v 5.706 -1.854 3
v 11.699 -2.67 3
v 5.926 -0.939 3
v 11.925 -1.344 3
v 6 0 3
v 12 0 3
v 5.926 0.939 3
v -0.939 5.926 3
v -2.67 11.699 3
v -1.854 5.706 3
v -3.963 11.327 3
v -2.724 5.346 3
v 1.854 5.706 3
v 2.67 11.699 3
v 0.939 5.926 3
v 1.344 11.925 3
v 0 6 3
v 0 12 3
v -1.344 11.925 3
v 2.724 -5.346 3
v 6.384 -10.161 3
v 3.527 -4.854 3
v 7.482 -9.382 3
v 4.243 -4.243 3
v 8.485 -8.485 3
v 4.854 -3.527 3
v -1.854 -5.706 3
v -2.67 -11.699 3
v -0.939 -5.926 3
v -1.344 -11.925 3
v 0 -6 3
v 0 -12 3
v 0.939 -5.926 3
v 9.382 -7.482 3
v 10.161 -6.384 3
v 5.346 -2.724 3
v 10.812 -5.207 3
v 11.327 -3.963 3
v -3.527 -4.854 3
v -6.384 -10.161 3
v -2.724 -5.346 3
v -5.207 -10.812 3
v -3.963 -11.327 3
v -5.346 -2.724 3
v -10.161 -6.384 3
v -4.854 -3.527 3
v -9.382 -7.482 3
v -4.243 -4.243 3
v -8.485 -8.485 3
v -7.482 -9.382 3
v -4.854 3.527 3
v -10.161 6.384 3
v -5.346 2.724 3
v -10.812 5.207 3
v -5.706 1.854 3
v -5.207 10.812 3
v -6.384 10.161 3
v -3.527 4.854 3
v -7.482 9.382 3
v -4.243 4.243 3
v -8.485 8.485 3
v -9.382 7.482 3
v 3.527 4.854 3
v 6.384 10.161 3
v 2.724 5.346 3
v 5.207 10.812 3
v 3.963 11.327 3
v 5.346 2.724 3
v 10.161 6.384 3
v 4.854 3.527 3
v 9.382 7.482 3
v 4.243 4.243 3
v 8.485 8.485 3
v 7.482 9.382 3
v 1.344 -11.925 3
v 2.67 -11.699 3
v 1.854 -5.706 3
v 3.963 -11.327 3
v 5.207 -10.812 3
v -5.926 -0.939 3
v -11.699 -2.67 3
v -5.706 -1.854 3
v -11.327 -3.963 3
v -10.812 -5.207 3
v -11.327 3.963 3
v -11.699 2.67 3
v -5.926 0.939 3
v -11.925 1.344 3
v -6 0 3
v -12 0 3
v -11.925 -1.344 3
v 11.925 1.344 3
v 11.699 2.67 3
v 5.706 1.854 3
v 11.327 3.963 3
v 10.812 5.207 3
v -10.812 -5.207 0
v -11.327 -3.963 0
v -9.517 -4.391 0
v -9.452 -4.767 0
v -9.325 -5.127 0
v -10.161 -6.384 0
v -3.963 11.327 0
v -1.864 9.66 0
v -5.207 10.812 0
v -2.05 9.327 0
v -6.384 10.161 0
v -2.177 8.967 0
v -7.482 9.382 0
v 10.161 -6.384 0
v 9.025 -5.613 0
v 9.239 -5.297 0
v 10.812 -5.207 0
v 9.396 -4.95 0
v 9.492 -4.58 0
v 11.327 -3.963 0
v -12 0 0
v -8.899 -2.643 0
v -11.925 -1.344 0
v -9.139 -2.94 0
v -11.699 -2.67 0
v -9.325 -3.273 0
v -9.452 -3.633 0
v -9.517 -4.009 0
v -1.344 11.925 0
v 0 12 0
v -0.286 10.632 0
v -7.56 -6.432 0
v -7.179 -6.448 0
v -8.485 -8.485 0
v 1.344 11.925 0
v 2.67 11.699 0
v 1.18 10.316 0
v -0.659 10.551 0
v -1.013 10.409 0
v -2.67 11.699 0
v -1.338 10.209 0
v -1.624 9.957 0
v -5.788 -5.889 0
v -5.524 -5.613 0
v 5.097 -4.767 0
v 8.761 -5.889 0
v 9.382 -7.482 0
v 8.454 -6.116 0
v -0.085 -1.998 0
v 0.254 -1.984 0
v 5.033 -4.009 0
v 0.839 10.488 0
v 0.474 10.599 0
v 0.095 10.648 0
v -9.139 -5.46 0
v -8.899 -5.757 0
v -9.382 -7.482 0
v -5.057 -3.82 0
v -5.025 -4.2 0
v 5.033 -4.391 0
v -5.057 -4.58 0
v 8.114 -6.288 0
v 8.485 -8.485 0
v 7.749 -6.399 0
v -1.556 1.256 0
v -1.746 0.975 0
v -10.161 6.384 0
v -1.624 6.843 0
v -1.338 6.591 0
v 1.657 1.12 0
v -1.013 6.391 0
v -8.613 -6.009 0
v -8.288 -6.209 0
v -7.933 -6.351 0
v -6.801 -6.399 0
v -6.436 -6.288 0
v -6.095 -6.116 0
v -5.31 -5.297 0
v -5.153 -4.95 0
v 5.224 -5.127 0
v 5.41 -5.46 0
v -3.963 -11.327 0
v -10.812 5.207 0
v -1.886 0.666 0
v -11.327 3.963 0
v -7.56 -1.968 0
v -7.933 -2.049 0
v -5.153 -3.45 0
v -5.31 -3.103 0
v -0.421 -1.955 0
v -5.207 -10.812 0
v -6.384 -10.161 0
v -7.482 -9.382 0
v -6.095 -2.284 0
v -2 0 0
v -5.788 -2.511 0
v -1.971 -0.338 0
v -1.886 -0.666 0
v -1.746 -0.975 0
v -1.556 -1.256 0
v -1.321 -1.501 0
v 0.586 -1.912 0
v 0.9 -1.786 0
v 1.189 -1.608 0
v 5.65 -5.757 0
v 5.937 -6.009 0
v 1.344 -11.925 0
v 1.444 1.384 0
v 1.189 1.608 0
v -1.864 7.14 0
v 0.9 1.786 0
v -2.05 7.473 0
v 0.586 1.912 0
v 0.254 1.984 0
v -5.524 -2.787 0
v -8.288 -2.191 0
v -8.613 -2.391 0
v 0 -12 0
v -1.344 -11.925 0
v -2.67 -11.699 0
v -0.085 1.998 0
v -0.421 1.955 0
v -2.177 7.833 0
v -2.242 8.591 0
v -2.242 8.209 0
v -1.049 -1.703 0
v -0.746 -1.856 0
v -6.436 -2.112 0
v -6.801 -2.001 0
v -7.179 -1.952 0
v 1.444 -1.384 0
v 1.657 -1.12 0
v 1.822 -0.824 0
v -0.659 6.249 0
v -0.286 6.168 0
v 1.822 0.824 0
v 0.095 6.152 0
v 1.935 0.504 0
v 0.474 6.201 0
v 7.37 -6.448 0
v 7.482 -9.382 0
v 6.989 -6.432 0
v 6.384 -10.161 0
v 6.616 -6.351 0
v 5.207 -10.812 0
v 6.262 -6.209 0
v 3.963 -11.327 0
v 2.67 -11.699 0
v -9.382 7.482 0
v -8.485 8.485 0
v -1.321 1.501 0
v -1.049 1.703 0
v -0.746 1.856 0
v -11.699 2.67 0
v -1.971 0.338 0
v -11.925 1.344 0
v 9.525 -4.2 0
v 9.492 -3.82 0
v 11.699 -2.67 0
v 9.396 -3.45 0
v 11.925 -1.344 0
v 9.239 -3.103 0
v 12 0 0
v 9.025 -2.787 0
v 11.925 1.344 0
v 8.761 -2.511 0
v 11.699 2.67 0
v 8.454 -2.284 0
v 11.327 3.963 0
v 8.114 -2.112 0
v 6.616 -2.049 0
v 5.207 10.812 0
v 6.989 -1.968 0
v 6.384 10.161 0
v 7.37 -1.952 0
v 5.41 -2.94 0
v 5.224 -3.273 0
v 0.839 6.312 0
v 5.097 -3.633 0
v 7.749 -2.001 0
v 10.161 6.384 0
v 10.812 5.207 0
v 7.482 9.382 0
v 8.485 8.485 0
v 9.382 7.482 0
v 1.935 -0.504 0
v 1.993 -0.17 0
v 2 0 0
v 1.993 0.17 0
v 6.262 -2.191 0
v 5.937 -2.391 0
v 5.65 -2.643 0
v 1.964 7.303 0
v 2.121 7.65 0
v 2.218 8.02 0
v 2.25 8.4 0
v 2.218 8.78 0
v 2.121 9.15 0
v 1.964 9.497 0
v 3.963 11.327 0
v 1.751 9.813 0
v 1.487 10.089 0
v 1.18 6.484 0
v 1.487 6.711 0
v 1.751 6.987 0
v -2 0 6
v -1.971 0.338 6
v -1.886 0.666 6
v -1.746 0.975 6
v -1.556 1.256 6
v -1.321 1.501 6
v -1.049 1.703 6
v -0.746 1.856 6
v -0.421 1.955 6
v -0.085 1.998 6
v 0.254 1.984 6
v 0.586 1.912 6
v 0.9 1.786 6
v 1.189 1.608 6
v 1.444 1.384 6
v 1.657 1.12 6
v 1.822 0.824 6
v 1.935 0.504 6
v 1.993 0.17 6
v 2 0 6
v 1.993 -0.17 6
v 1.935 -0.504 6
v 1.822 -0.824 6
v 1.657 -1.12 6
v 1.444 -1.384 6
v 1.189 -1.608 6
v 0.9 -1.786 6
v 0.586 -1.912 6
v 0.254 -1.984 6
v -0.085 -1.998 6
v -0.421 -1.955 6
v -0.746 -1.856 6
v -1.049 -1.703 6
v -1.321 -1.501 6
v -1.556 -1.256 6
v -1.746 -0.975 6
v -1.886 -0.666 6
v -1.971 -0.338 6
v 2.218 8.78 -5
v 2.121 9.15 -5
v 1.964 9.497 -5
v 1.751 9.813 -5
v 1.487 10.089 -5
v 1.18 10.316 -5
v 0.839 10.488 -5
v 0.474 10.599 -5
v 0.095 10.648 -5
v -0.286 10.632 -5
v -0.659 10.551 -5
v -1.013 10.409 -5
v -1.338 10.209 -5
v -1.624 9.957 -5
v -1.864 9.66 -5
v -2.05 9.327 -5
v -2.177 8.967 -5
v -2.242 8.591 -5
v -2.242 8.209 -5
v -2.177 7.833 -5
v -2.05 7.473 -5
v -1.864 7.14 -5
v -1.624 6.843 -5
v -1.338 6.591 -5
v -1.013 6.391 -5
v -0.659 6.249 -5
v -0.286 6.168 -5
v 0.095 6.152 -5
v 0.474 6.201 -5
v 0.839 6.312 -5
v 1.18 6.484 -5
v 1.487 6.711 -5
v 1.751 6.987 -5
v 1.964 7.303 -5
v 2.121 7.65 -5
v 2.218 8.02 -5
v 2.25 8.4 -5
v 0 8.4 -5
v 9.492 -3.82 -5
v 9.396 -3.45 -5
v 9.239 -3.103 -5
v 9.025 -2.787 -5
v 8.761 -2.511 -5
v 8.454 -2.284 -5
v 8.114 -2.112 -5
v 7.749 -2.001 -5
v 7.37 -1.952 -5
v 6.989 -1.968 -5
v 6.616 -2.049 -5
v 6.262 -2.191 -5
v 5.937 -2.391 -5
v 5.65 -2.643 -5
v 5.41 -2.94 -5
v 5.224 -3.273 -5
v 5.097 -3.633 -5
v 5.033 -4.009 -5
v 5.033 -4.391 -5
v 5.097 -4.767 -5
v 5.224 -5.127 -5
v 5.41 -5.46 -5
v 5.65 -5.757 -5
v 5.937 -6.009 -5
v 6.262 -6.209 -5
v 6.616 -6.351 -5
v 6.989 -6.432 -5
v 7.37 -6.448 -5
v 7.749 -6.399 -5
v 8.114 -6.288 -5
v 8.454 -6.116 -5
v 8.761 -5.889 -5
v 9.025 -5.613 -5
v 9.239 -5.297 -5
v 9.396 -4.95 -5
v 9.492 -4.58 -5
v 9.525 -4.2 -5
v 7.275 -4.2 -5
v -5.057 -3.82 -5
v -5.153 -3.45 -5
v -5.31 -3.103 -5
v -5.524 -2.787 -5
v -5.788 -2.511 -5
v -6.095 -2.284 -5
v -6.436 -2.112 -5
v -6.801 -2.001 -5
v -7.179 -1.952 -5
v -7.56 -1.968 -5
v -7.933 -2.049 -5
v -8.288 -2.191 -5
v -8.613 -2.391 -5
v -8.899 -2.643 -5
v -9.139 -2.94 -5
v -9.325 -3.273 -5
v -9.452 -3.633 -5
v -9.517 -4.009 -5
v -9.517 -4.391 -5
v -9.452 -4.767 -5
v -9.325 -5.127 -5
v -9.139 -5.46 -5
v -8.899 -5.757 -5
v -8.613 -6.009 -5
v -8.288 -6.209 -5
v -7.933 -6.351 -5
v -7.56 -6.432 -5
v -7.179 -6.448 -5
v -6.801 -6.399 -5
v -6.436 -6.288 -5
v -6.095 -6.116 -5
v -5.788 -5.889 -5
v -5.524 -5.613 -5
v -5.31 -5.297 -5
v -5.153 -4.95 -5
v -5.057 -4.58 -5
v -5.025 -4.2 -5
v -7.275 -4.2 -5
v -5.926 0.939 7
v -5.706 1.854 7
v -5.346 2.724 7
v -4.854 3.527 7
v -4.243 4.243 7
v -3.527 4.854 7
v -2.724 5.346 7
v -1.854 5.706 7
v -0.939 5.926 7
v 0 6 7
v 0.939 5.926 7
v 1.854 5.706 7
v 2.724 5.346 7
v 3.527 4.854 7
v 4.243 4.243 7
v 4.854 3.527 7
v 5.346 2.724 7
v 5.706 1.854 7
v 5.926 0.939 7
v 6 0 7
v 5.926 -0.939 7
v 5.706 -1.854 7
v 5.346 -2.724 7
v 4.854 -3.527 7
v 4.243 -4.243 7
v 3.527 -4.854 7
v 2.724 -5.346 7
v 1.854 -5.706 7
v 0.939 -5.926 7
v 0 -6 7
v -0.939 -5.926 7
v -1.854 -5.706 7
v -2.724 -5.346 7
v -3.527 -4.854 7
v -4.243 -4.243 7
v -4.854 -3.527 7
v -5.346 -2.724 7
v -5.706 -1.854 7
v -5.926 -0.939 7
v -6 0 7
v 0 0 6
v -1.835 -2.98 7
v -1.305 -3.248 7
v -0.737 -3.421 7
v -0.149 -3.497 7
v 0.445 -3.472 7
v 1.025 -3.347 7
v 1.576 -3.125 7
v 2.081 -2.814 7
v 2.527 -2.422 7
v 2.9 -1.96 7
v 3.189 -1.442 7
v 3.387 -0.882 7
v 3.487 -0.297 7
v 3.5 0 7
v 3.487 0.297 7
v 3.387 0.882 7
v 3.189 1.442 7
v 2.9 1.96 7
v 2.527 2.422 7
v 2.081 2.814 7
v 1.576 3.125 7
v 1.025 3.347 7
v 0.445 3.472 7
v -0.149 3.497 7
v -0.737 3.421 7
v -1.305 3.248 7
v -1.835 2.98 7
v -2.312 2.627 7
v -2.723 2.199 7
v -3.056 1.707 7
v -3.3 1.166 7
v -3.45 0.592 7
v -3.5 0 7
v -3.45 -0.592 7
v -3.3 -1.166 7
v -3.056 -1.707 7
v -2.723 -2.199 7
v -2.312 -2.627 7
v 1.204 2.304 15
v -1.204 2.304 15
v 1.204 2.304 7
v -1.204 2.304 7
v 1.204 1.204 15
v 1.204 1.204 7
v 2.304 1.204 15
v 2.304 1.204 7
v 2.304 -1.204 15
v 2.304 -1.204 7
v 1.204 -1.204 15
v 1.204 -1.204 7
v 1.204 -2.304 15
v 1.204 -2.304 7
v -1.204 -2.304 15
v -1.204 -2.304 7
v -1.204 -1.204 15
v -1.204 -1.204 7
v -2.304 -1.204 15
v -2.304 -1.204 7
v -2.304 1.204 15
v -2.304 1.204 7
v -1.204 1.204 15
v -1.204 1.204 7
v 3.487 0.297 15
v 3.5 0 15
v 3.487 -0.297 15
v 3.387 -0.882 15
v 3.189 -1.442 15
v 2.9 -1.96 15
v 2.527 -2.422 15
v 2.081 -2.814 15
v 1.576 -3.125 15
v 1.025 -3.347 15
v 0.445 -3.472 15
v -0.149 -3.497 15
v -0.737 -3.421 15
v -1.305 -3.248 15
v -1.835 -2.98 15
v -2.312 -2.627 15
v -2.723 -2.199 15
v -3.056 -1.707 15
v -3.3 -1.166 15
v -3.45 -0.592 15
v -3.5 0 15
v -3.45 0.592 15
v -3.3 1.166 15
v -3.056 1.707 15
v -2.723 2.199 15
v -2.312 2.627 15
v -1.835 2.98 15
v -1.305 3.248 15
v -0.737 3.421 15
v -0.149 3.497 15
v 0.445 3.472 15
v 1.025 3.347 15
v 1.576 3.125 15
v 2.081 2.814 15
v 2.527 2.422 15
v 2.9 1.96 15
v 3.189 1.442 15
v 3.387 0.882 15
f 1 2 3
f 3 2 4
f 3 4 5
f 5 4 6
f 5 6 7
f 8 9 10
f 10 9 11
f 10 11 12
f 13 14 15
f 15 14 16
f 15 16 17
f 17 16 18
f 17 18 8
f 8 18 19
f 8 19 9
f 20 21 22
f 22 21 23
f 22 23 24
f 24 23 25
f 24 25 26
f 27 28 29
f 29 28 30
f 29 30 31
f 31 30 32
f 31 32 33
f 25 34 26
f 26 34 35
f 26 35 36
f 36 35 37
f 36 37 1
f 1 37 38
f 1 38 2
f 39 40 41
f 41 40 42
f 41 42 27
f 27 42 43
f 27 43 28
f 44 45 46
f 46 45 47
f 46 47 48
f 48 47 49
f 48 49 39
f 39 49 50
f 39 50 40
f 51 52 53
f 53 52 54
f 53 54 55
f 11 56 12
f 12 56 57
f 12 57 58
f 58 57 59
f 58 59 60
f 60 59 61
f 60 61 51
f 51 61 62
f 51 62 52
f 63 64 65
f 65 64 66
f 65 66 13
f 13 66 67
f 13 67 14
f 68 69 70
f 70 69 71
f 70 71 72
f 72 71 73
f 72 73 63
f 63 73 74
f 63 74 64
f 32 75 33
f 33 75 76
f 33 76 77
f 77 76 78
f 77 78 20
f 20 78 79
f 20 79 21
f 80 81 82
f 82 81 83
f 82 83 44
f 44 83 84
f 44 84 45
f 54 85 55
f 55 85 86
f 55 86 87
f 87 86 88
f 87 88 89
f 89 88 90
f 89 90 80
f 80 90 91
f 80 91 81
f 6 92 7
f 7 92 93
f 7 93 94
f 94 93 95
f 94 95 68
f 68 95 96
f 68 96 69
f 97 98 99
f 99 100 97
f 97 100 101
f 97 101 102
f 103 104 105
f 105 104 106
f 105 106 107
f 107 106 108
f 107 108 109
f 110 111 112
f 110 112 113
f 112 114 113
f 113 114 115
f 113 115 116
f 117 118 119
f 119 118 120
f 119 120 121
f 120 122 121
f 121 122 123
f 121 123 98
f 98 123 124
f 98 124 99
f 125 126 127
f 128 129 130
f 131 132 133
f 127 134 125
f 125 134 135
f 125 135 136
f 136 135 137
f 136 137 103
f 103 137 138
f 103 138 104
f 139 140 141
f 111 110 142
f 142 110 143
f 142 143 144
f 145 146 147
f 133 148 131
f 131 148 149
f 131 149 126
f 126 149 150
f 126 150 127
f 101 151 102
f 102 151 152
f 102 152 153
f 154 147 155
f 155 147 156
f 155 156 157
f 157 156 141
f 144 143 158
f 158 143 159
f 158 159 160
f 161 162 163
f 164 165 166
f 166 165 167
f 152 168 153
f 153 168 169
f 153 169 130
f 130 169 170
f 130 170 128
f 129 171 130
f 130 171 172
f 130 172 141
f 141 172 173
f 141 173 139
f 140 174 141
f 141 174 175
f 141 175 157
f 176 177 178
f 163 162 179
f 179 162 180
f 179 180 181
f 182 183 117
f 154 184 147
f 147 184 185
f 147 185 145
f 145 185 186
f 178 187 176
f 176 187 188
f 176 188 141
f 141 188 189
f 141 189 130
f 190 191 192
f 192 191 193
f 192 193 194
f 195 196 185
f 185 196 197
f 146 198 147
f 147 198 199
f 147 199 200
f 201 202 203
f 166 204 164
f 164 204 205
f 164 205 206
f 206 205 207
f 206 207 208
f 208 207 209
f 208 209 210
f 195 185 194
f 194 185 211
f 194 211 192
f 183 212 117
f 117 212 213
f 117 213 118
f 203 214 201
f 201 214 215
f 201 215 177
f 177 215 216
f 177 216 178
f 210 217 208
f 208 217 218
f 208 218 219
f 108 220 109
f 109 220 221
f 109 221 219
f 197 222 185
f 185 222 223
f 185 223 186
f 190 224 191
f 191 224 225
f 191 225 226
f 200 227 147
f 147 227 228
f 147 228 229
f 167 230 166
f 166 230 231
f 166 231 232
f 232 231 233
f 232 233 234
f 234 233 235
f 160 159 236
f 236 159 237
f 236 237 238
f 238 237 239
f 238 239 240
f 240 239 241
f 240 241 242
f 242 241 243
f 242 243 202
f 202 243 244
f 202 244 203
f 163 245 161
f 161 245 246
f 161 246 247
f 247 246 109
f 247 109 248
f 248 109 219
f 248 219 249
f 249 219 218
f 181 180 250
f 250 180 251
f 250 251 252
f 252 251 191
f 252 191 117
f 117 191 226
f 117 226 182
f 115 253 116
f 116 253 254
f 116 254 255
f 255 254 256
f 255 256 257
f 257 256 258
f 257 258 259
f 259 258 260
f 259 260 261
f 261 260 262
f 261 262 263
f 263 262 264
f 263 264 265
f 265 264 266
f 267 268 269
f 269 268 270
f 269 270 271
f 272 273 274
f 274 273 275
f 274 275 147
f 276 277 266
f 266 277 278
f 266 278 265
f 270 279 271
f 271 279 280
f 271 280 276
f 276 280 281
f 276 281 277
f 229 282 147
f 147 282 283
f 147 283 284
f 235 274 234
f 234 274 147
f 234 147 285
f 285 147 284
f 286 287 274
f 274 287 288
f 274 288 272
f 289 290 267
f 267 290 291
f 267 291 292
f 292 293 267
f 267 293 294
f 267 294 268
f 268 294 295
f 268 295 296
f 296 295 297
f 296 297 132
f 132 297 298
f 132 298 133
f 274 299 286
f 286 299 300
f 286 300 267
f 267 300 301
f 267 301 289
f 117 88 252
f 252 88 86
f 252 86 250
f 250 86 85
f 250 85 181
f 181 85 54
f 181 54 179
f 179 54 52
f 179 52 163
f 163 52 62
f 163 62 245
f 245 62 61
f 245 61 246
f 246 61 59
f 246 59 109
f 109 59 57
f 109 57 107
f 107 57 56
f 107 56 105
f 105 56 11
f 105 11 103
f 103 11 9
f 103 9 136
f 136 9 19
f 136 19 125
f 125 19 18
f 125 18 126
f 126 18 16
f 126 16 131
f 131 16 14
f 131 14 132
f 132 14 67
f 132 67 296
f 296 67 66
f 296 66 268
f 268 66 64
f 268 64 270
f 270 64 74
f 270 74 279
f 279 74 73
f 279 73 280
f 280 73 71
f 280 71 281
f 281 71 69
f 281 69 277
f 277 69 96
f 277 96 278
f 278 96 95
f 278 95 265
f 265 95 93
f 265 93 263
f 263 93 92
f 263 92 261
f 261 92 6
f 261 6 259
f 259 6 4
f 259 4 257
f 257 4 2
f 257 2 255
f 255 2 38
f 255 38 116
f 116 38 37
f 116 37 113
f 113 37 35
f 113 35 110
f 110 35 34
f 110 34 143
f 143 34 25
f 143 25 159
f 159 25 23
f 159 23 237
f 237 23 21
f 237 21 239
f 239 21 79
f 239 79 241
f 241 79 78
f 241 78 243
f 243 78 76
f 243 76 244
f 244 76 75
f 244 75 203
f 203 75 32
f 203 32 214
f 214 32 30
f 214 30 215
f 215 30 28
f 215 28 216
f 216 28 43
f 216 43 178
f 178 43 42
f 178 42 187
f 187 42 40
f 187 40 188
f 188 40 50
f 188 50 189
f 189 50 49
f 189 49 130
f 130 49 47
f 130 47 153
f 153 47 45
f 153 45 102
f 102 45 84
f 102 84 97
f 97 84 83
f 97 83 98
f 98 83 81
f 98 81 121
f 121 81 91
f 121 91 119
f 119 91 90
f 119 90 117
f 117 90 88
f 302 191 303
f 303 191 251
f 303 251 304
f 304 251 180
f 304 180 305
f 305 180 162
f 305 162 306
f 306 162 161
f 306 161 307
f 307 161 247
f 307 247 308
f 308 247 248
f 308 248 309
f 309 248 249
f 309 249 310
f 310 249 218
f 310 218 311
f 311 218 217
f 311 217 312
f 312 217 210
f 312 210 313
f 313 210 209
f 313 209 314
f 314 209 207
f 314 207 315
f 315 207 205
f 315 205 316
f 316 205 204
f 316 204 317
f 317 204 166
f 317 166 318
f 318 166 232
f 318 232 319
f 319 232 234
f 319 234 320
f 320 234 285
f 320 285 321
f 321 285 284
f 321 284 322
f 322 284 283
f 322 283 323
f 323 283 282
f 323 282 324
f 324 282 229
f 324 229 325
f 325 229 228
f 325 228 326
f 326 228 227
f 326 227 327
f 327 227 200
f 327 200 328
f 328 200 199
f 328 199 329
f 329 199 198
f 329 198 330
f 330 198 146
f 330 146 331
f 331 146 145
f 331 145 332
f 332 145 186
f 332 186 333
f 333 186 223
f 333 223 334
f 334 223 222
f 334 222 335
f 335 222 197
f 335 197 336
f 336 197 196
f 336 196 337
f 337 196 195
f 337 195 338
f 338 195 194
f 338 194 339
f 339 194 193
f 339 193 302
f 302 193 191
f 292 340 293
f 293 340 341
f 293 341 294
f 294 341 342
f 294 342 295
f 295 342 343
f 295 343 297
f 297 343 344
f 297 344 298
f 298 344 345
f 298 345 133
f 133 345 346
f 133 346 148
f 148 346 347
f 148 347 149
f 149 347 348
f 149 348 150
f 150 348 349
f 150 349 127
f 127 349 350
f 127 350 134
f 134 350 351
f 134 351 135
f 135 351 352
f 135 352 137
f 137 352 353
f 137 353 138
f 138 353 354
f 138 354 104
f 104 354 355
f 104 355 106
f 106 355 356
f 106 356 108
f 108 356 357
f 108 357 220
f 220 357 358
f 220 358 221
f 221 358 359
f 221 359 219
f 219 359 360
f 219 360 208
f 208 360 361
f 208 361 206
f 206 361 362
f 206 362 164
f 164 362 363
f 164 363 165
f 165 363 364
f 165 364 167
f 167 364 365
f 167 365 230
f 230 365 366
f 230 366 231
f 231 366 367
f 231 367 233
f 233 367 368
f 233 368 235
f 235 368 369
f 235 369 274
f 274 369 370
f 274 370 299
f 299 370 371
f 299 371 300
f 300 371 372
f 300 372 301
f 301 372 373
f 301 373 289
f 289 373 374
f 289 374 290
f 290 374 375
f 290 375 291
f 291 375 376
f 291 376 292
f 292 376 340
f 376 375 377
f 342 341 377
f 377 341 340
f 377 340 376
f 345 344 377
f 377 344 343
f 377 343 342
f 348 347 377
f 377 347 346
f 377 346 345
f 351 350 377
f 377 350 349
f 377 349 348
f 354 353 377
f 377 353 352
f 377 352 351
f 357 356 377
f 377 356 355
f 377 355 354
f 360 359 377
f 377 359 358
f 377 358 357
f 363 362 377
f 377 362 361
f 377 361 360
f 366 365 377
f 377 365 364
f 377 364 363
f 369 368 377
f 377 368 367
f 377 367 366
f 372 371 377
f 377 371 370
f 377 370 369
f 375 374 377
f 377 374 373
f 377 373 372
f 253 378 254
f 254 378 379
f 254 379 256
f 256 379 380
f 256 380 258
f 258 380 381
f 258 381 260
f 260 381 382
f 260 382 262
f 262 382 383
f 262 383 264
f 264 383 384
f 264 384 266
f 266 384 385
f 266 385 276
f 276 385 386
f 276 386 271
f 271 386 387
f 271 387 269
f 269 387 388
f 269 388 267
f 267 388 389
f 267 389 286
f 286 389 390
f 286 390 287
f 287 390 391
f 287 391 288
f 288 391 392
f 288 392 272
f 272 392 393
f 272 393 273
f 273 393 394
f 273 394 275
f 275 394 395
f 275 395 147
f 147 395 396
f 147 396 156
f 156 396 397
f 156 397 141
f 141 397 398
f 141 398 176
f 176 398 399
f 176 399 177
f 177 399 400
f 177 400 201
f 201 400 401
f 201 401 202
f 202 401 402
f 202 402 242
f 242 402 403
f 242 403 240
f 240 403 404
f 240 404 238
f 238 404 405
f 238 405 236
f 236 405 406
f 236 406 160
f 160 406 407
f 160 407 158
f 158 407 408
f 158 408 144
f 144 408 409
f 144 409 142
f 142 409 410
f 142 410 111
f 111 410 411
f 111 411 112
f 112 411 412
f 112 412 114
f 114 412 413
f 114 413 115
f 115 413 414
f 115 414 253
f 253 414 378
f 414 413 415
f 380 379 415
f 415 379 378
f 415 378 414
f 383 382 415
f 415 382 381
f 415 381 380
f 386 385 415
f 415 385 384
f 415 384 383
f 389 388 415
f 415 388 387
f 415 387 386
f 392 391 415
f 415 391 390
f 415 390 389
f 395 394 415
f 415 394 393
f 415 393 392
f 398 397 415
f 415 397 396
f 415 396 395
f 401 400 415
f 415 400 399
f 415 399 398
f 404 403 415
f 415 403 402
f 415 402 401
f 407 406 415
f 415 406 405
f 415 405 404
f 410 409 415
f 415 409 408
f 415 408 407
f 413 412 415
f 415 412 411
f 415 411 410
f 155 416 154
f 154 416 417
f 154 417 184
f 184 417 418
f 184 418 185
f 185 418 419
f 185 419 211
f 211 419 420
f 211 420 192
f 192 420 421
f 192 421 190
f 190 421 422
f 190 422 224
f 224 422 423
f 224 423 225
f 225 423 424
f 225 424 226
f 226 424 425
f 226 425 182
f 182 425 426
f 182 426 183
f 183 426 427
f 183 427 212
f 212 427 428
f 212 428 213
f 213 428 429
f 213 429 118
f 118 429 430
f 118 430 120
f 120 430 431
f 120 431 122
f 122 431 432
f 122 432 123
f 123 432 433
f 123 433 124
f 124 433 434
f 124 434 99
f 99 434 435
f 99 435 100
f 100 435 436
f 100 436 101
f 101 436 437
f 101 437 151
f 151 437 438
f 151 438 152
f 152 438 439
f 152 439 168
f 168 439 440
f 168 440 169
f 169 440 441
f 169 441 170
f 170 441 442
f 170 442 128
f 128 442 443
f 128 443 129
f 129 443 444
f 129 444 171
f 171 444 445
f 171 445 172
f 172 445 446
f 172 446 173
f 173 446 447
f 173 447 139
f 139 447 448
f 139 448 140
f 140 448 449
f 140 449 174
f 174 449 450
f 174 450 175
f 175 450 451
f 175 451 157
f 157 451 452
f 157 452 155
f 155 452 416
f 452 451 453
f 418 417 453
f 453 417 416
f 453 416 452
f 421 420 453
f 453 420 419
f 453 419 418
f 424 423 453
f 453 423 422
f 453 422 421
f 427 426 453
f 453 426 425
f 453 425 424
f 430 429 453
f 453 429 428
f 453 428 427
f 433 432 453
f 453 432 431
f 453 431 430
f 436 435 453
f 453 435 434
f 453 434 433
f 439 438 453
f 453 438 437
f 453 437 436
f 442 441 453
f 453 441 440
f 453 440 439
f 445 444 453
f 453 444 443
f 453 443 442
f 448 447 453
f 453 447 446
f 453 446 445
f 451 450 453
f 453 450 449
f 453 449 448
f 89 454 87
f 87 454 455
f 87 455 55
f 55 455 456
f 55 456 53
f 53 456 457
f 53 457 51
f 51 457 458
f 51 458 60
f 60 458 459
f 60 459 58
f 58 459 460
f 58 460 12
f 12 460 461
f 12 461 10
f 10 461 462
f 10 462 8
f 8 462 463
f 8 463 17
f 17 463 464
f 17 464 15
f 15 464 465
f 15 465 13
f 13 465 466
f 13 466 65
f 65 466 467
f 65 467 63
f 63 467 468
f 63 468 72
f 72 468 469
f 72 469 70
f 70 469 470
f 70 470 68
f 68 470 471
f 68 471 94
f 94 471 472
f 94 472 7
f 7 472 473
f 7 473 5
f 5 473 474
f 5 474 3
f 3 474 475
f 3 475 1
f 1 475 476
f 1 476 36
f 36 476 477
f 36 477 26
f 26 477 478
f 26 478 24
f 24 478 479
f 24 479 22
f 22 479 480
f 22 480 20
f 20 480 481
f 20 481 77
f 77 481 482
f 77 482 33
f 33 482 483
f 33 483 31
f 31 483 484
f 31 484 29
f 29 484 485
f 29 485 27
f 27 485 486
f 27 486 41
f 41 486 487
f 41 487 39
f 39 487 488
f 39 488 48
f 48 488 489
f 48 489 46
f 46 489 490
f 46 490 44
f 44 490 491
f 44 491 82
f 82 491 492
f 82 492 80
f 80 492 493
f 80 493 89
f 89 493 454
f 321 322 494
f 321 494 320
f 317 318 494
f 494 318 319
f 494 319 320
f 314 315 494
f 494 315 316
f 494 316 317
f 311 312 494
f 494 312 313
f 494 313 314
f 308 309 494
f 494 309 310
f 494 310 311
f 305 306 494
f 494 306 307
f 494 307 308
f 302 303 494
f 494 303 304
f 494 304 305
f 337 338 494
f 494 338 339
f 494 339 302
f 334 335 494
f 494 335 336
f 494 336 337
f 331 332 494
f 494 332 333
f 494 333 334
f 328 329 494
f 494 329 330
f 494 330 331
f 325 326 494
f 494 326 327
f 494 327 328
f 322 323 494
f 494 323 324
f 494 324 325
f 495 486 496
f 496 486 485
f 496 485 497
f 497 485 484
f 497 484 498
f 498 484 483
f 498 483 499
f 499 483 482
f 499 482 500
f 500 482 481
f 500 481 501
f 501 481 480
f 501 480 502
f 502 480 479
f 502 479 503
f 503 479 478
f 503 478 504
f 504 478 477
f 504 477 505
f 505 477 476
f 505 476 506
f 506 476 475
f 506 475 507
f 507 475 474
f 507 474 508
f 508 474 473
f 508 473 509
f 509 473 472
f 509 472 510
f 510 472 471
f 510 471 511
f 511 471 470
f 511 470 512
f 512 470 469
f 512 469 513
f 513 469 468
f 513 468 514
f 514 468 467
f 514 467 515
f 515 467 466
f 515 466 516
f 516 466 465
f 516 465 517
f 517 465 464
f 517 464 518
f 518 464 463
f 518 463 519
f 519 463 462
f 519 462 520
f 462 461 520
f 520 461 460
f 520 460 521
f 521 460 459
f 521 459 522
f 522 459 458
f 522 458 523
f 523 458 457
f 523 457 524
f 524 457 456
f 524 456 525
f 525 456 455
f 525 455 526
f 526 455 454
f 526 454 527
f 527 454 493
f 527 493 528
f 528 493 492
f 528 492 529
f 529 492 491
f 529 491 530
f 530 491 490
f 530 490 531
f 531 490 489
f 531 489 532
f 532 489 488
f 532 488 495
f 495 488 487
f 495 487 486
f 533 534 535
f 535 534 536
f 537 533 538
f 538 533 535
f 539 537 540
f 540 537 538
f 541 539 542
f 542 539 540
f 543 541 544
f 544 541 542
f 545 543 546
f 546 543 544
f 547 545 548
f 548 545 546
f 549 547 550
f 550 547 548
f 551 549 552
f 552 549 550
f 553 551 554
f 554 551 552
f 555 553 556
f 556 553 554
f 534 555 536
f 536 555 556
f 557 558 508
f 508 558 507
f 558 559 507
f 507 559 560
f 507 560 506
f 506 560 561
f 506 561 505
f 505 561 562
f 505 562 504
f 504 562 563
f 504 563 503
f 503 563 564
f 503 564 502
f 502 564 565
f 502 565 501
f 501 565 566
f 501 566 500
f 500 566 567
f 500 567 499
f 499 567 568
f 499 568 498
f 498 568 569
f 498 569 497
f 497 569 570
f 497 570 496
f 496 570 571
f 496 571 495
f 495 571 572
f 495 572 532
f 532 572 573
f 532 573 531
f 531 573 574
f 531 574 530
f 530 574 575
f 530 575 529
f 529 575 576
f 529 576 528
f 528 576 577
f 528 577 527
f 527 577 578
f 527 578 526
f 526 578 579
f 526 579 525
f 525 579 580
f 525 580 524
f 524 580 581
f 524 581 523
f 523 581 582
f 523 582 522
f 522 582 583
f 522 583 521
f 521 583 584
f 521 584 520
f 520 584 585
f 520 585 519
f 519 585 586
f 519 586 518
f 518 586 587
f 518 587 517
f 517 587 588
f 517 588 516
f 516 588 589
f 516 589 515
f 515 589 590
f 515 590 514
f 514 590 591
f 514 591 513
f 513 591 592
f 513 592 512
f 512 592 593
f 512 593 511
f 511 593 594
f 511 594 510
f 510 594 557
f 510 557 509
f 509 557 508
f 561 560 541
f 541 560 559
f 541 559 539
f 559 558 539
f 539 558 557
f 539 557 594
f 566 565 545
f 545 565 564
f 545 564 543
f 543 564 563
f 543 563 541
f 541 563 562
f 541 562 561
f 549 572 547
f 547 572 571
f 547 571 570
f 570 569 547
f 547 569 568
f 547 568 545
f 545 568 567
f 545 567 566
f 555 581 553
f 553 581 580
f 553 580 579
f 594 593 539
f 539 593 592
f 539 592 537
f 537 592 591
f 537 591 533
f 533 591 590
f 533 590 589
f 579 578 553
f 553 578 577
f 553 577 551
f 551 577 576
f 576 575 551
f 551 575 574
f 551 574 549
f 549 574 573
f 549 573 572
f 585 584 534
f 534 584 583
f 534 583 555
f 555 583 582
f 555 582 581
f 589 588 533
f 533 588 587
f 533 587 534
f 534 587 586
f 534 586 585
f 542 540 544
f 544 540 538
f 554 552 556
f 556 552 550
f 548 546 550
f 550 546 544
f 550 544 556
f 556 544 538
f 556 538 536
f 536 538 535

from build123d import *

# Parameters (mm, degrees)
SKETCH_1_R      = 12
SKETCH_1_R_2    = 2
EXTRUDE_1_DEPTH = 3
SKETCH_1_3_R    = 2.25
EXTRUDE_2_DEPTH = 5
EXTRUDE_START   = 3
SKETCH_1_4_R    = 6
SKETCH_1_4_R_2  = 2
EXTRUDE_3_DEPTH = 3
EXTRUDE_START_2 = 6
SKETCH_1_5_R    = 6
EXTRUDE_5_DEPTH = 1
SKETCH_2_R      = 3.5
EXTRUDE_4_DEPTH = 8


with BuildPart() as part:
    # 草图1 → 凸台-拉伸1 (new body)
    with BuildSketch(Plane.XY):
        Circle(SKETCH_1_R)
        Circle(SKETCH_1_R_2, mode=Mode.SUBTRACT)
    extrude(amount=EXTRUDE_1_DEPTH)

    # 草图1<3> → 凸台-拉伸2 (add)
    with BuildSketch(Plane.XY):
        with Locations((0, 8.4)):
            Circle(SKETCH_1_3_R)
        with Locations((7.274613392, -4.2)):
            Circle(SKETCH_1_3_R)
        with Locations((-7.274613392, -4.2)):
            Circle(SKETCH_1_3_R)
    extrude(amount=-EXTRUDE_2_DEPTH)

    # 草图1<4> → 凸台-拉伸3 (add)
    with BuildSketch(Plane.XY.offset(EXTRUDE_START)):
        Circle(SKETCH_1_4_R)
        Circle(SKETCH_1_4_R_2, mode=Mode.SUBTRACT)
    extrude(amount=EXTRUDE_3_DEPTH)

    # 草图1<5> → 凸台-拉伸5 (add)
    with BuildSketch(Plane.XY.offset(EXTRUDE_START_2)):
        Circle(SKETCH_1_5_R)
    extrude(amount=EXTRUDE_5_DEPTH)

    # 草图2 → 凸台-拉伸4 (add)
    with BuildSketch(Plane.XY.offset(7)):
        Circle(SKETCH_2_R)
        Polygon((-1.204280479, -1.204280479), (-2.304280479, -1.204280479), (-2.304280479, 1.204280479), (-1.204280479, 1.204280479), (-1.204280479, 2.304280479), (1.204280479, 2.304280479), (1.204280479, 1.204280479), (2.304280479, 1.204280479), (2.304280479, -1.204280479), (1.204280479, -1.204280479), (1.204280479, -2.304280479), (-1.204280479, -2.304280479), align=None, mode=Mode.SUBTRACT)
    extrude(amount=EXTRUDE_4_DEPTH)


solid = part.part
